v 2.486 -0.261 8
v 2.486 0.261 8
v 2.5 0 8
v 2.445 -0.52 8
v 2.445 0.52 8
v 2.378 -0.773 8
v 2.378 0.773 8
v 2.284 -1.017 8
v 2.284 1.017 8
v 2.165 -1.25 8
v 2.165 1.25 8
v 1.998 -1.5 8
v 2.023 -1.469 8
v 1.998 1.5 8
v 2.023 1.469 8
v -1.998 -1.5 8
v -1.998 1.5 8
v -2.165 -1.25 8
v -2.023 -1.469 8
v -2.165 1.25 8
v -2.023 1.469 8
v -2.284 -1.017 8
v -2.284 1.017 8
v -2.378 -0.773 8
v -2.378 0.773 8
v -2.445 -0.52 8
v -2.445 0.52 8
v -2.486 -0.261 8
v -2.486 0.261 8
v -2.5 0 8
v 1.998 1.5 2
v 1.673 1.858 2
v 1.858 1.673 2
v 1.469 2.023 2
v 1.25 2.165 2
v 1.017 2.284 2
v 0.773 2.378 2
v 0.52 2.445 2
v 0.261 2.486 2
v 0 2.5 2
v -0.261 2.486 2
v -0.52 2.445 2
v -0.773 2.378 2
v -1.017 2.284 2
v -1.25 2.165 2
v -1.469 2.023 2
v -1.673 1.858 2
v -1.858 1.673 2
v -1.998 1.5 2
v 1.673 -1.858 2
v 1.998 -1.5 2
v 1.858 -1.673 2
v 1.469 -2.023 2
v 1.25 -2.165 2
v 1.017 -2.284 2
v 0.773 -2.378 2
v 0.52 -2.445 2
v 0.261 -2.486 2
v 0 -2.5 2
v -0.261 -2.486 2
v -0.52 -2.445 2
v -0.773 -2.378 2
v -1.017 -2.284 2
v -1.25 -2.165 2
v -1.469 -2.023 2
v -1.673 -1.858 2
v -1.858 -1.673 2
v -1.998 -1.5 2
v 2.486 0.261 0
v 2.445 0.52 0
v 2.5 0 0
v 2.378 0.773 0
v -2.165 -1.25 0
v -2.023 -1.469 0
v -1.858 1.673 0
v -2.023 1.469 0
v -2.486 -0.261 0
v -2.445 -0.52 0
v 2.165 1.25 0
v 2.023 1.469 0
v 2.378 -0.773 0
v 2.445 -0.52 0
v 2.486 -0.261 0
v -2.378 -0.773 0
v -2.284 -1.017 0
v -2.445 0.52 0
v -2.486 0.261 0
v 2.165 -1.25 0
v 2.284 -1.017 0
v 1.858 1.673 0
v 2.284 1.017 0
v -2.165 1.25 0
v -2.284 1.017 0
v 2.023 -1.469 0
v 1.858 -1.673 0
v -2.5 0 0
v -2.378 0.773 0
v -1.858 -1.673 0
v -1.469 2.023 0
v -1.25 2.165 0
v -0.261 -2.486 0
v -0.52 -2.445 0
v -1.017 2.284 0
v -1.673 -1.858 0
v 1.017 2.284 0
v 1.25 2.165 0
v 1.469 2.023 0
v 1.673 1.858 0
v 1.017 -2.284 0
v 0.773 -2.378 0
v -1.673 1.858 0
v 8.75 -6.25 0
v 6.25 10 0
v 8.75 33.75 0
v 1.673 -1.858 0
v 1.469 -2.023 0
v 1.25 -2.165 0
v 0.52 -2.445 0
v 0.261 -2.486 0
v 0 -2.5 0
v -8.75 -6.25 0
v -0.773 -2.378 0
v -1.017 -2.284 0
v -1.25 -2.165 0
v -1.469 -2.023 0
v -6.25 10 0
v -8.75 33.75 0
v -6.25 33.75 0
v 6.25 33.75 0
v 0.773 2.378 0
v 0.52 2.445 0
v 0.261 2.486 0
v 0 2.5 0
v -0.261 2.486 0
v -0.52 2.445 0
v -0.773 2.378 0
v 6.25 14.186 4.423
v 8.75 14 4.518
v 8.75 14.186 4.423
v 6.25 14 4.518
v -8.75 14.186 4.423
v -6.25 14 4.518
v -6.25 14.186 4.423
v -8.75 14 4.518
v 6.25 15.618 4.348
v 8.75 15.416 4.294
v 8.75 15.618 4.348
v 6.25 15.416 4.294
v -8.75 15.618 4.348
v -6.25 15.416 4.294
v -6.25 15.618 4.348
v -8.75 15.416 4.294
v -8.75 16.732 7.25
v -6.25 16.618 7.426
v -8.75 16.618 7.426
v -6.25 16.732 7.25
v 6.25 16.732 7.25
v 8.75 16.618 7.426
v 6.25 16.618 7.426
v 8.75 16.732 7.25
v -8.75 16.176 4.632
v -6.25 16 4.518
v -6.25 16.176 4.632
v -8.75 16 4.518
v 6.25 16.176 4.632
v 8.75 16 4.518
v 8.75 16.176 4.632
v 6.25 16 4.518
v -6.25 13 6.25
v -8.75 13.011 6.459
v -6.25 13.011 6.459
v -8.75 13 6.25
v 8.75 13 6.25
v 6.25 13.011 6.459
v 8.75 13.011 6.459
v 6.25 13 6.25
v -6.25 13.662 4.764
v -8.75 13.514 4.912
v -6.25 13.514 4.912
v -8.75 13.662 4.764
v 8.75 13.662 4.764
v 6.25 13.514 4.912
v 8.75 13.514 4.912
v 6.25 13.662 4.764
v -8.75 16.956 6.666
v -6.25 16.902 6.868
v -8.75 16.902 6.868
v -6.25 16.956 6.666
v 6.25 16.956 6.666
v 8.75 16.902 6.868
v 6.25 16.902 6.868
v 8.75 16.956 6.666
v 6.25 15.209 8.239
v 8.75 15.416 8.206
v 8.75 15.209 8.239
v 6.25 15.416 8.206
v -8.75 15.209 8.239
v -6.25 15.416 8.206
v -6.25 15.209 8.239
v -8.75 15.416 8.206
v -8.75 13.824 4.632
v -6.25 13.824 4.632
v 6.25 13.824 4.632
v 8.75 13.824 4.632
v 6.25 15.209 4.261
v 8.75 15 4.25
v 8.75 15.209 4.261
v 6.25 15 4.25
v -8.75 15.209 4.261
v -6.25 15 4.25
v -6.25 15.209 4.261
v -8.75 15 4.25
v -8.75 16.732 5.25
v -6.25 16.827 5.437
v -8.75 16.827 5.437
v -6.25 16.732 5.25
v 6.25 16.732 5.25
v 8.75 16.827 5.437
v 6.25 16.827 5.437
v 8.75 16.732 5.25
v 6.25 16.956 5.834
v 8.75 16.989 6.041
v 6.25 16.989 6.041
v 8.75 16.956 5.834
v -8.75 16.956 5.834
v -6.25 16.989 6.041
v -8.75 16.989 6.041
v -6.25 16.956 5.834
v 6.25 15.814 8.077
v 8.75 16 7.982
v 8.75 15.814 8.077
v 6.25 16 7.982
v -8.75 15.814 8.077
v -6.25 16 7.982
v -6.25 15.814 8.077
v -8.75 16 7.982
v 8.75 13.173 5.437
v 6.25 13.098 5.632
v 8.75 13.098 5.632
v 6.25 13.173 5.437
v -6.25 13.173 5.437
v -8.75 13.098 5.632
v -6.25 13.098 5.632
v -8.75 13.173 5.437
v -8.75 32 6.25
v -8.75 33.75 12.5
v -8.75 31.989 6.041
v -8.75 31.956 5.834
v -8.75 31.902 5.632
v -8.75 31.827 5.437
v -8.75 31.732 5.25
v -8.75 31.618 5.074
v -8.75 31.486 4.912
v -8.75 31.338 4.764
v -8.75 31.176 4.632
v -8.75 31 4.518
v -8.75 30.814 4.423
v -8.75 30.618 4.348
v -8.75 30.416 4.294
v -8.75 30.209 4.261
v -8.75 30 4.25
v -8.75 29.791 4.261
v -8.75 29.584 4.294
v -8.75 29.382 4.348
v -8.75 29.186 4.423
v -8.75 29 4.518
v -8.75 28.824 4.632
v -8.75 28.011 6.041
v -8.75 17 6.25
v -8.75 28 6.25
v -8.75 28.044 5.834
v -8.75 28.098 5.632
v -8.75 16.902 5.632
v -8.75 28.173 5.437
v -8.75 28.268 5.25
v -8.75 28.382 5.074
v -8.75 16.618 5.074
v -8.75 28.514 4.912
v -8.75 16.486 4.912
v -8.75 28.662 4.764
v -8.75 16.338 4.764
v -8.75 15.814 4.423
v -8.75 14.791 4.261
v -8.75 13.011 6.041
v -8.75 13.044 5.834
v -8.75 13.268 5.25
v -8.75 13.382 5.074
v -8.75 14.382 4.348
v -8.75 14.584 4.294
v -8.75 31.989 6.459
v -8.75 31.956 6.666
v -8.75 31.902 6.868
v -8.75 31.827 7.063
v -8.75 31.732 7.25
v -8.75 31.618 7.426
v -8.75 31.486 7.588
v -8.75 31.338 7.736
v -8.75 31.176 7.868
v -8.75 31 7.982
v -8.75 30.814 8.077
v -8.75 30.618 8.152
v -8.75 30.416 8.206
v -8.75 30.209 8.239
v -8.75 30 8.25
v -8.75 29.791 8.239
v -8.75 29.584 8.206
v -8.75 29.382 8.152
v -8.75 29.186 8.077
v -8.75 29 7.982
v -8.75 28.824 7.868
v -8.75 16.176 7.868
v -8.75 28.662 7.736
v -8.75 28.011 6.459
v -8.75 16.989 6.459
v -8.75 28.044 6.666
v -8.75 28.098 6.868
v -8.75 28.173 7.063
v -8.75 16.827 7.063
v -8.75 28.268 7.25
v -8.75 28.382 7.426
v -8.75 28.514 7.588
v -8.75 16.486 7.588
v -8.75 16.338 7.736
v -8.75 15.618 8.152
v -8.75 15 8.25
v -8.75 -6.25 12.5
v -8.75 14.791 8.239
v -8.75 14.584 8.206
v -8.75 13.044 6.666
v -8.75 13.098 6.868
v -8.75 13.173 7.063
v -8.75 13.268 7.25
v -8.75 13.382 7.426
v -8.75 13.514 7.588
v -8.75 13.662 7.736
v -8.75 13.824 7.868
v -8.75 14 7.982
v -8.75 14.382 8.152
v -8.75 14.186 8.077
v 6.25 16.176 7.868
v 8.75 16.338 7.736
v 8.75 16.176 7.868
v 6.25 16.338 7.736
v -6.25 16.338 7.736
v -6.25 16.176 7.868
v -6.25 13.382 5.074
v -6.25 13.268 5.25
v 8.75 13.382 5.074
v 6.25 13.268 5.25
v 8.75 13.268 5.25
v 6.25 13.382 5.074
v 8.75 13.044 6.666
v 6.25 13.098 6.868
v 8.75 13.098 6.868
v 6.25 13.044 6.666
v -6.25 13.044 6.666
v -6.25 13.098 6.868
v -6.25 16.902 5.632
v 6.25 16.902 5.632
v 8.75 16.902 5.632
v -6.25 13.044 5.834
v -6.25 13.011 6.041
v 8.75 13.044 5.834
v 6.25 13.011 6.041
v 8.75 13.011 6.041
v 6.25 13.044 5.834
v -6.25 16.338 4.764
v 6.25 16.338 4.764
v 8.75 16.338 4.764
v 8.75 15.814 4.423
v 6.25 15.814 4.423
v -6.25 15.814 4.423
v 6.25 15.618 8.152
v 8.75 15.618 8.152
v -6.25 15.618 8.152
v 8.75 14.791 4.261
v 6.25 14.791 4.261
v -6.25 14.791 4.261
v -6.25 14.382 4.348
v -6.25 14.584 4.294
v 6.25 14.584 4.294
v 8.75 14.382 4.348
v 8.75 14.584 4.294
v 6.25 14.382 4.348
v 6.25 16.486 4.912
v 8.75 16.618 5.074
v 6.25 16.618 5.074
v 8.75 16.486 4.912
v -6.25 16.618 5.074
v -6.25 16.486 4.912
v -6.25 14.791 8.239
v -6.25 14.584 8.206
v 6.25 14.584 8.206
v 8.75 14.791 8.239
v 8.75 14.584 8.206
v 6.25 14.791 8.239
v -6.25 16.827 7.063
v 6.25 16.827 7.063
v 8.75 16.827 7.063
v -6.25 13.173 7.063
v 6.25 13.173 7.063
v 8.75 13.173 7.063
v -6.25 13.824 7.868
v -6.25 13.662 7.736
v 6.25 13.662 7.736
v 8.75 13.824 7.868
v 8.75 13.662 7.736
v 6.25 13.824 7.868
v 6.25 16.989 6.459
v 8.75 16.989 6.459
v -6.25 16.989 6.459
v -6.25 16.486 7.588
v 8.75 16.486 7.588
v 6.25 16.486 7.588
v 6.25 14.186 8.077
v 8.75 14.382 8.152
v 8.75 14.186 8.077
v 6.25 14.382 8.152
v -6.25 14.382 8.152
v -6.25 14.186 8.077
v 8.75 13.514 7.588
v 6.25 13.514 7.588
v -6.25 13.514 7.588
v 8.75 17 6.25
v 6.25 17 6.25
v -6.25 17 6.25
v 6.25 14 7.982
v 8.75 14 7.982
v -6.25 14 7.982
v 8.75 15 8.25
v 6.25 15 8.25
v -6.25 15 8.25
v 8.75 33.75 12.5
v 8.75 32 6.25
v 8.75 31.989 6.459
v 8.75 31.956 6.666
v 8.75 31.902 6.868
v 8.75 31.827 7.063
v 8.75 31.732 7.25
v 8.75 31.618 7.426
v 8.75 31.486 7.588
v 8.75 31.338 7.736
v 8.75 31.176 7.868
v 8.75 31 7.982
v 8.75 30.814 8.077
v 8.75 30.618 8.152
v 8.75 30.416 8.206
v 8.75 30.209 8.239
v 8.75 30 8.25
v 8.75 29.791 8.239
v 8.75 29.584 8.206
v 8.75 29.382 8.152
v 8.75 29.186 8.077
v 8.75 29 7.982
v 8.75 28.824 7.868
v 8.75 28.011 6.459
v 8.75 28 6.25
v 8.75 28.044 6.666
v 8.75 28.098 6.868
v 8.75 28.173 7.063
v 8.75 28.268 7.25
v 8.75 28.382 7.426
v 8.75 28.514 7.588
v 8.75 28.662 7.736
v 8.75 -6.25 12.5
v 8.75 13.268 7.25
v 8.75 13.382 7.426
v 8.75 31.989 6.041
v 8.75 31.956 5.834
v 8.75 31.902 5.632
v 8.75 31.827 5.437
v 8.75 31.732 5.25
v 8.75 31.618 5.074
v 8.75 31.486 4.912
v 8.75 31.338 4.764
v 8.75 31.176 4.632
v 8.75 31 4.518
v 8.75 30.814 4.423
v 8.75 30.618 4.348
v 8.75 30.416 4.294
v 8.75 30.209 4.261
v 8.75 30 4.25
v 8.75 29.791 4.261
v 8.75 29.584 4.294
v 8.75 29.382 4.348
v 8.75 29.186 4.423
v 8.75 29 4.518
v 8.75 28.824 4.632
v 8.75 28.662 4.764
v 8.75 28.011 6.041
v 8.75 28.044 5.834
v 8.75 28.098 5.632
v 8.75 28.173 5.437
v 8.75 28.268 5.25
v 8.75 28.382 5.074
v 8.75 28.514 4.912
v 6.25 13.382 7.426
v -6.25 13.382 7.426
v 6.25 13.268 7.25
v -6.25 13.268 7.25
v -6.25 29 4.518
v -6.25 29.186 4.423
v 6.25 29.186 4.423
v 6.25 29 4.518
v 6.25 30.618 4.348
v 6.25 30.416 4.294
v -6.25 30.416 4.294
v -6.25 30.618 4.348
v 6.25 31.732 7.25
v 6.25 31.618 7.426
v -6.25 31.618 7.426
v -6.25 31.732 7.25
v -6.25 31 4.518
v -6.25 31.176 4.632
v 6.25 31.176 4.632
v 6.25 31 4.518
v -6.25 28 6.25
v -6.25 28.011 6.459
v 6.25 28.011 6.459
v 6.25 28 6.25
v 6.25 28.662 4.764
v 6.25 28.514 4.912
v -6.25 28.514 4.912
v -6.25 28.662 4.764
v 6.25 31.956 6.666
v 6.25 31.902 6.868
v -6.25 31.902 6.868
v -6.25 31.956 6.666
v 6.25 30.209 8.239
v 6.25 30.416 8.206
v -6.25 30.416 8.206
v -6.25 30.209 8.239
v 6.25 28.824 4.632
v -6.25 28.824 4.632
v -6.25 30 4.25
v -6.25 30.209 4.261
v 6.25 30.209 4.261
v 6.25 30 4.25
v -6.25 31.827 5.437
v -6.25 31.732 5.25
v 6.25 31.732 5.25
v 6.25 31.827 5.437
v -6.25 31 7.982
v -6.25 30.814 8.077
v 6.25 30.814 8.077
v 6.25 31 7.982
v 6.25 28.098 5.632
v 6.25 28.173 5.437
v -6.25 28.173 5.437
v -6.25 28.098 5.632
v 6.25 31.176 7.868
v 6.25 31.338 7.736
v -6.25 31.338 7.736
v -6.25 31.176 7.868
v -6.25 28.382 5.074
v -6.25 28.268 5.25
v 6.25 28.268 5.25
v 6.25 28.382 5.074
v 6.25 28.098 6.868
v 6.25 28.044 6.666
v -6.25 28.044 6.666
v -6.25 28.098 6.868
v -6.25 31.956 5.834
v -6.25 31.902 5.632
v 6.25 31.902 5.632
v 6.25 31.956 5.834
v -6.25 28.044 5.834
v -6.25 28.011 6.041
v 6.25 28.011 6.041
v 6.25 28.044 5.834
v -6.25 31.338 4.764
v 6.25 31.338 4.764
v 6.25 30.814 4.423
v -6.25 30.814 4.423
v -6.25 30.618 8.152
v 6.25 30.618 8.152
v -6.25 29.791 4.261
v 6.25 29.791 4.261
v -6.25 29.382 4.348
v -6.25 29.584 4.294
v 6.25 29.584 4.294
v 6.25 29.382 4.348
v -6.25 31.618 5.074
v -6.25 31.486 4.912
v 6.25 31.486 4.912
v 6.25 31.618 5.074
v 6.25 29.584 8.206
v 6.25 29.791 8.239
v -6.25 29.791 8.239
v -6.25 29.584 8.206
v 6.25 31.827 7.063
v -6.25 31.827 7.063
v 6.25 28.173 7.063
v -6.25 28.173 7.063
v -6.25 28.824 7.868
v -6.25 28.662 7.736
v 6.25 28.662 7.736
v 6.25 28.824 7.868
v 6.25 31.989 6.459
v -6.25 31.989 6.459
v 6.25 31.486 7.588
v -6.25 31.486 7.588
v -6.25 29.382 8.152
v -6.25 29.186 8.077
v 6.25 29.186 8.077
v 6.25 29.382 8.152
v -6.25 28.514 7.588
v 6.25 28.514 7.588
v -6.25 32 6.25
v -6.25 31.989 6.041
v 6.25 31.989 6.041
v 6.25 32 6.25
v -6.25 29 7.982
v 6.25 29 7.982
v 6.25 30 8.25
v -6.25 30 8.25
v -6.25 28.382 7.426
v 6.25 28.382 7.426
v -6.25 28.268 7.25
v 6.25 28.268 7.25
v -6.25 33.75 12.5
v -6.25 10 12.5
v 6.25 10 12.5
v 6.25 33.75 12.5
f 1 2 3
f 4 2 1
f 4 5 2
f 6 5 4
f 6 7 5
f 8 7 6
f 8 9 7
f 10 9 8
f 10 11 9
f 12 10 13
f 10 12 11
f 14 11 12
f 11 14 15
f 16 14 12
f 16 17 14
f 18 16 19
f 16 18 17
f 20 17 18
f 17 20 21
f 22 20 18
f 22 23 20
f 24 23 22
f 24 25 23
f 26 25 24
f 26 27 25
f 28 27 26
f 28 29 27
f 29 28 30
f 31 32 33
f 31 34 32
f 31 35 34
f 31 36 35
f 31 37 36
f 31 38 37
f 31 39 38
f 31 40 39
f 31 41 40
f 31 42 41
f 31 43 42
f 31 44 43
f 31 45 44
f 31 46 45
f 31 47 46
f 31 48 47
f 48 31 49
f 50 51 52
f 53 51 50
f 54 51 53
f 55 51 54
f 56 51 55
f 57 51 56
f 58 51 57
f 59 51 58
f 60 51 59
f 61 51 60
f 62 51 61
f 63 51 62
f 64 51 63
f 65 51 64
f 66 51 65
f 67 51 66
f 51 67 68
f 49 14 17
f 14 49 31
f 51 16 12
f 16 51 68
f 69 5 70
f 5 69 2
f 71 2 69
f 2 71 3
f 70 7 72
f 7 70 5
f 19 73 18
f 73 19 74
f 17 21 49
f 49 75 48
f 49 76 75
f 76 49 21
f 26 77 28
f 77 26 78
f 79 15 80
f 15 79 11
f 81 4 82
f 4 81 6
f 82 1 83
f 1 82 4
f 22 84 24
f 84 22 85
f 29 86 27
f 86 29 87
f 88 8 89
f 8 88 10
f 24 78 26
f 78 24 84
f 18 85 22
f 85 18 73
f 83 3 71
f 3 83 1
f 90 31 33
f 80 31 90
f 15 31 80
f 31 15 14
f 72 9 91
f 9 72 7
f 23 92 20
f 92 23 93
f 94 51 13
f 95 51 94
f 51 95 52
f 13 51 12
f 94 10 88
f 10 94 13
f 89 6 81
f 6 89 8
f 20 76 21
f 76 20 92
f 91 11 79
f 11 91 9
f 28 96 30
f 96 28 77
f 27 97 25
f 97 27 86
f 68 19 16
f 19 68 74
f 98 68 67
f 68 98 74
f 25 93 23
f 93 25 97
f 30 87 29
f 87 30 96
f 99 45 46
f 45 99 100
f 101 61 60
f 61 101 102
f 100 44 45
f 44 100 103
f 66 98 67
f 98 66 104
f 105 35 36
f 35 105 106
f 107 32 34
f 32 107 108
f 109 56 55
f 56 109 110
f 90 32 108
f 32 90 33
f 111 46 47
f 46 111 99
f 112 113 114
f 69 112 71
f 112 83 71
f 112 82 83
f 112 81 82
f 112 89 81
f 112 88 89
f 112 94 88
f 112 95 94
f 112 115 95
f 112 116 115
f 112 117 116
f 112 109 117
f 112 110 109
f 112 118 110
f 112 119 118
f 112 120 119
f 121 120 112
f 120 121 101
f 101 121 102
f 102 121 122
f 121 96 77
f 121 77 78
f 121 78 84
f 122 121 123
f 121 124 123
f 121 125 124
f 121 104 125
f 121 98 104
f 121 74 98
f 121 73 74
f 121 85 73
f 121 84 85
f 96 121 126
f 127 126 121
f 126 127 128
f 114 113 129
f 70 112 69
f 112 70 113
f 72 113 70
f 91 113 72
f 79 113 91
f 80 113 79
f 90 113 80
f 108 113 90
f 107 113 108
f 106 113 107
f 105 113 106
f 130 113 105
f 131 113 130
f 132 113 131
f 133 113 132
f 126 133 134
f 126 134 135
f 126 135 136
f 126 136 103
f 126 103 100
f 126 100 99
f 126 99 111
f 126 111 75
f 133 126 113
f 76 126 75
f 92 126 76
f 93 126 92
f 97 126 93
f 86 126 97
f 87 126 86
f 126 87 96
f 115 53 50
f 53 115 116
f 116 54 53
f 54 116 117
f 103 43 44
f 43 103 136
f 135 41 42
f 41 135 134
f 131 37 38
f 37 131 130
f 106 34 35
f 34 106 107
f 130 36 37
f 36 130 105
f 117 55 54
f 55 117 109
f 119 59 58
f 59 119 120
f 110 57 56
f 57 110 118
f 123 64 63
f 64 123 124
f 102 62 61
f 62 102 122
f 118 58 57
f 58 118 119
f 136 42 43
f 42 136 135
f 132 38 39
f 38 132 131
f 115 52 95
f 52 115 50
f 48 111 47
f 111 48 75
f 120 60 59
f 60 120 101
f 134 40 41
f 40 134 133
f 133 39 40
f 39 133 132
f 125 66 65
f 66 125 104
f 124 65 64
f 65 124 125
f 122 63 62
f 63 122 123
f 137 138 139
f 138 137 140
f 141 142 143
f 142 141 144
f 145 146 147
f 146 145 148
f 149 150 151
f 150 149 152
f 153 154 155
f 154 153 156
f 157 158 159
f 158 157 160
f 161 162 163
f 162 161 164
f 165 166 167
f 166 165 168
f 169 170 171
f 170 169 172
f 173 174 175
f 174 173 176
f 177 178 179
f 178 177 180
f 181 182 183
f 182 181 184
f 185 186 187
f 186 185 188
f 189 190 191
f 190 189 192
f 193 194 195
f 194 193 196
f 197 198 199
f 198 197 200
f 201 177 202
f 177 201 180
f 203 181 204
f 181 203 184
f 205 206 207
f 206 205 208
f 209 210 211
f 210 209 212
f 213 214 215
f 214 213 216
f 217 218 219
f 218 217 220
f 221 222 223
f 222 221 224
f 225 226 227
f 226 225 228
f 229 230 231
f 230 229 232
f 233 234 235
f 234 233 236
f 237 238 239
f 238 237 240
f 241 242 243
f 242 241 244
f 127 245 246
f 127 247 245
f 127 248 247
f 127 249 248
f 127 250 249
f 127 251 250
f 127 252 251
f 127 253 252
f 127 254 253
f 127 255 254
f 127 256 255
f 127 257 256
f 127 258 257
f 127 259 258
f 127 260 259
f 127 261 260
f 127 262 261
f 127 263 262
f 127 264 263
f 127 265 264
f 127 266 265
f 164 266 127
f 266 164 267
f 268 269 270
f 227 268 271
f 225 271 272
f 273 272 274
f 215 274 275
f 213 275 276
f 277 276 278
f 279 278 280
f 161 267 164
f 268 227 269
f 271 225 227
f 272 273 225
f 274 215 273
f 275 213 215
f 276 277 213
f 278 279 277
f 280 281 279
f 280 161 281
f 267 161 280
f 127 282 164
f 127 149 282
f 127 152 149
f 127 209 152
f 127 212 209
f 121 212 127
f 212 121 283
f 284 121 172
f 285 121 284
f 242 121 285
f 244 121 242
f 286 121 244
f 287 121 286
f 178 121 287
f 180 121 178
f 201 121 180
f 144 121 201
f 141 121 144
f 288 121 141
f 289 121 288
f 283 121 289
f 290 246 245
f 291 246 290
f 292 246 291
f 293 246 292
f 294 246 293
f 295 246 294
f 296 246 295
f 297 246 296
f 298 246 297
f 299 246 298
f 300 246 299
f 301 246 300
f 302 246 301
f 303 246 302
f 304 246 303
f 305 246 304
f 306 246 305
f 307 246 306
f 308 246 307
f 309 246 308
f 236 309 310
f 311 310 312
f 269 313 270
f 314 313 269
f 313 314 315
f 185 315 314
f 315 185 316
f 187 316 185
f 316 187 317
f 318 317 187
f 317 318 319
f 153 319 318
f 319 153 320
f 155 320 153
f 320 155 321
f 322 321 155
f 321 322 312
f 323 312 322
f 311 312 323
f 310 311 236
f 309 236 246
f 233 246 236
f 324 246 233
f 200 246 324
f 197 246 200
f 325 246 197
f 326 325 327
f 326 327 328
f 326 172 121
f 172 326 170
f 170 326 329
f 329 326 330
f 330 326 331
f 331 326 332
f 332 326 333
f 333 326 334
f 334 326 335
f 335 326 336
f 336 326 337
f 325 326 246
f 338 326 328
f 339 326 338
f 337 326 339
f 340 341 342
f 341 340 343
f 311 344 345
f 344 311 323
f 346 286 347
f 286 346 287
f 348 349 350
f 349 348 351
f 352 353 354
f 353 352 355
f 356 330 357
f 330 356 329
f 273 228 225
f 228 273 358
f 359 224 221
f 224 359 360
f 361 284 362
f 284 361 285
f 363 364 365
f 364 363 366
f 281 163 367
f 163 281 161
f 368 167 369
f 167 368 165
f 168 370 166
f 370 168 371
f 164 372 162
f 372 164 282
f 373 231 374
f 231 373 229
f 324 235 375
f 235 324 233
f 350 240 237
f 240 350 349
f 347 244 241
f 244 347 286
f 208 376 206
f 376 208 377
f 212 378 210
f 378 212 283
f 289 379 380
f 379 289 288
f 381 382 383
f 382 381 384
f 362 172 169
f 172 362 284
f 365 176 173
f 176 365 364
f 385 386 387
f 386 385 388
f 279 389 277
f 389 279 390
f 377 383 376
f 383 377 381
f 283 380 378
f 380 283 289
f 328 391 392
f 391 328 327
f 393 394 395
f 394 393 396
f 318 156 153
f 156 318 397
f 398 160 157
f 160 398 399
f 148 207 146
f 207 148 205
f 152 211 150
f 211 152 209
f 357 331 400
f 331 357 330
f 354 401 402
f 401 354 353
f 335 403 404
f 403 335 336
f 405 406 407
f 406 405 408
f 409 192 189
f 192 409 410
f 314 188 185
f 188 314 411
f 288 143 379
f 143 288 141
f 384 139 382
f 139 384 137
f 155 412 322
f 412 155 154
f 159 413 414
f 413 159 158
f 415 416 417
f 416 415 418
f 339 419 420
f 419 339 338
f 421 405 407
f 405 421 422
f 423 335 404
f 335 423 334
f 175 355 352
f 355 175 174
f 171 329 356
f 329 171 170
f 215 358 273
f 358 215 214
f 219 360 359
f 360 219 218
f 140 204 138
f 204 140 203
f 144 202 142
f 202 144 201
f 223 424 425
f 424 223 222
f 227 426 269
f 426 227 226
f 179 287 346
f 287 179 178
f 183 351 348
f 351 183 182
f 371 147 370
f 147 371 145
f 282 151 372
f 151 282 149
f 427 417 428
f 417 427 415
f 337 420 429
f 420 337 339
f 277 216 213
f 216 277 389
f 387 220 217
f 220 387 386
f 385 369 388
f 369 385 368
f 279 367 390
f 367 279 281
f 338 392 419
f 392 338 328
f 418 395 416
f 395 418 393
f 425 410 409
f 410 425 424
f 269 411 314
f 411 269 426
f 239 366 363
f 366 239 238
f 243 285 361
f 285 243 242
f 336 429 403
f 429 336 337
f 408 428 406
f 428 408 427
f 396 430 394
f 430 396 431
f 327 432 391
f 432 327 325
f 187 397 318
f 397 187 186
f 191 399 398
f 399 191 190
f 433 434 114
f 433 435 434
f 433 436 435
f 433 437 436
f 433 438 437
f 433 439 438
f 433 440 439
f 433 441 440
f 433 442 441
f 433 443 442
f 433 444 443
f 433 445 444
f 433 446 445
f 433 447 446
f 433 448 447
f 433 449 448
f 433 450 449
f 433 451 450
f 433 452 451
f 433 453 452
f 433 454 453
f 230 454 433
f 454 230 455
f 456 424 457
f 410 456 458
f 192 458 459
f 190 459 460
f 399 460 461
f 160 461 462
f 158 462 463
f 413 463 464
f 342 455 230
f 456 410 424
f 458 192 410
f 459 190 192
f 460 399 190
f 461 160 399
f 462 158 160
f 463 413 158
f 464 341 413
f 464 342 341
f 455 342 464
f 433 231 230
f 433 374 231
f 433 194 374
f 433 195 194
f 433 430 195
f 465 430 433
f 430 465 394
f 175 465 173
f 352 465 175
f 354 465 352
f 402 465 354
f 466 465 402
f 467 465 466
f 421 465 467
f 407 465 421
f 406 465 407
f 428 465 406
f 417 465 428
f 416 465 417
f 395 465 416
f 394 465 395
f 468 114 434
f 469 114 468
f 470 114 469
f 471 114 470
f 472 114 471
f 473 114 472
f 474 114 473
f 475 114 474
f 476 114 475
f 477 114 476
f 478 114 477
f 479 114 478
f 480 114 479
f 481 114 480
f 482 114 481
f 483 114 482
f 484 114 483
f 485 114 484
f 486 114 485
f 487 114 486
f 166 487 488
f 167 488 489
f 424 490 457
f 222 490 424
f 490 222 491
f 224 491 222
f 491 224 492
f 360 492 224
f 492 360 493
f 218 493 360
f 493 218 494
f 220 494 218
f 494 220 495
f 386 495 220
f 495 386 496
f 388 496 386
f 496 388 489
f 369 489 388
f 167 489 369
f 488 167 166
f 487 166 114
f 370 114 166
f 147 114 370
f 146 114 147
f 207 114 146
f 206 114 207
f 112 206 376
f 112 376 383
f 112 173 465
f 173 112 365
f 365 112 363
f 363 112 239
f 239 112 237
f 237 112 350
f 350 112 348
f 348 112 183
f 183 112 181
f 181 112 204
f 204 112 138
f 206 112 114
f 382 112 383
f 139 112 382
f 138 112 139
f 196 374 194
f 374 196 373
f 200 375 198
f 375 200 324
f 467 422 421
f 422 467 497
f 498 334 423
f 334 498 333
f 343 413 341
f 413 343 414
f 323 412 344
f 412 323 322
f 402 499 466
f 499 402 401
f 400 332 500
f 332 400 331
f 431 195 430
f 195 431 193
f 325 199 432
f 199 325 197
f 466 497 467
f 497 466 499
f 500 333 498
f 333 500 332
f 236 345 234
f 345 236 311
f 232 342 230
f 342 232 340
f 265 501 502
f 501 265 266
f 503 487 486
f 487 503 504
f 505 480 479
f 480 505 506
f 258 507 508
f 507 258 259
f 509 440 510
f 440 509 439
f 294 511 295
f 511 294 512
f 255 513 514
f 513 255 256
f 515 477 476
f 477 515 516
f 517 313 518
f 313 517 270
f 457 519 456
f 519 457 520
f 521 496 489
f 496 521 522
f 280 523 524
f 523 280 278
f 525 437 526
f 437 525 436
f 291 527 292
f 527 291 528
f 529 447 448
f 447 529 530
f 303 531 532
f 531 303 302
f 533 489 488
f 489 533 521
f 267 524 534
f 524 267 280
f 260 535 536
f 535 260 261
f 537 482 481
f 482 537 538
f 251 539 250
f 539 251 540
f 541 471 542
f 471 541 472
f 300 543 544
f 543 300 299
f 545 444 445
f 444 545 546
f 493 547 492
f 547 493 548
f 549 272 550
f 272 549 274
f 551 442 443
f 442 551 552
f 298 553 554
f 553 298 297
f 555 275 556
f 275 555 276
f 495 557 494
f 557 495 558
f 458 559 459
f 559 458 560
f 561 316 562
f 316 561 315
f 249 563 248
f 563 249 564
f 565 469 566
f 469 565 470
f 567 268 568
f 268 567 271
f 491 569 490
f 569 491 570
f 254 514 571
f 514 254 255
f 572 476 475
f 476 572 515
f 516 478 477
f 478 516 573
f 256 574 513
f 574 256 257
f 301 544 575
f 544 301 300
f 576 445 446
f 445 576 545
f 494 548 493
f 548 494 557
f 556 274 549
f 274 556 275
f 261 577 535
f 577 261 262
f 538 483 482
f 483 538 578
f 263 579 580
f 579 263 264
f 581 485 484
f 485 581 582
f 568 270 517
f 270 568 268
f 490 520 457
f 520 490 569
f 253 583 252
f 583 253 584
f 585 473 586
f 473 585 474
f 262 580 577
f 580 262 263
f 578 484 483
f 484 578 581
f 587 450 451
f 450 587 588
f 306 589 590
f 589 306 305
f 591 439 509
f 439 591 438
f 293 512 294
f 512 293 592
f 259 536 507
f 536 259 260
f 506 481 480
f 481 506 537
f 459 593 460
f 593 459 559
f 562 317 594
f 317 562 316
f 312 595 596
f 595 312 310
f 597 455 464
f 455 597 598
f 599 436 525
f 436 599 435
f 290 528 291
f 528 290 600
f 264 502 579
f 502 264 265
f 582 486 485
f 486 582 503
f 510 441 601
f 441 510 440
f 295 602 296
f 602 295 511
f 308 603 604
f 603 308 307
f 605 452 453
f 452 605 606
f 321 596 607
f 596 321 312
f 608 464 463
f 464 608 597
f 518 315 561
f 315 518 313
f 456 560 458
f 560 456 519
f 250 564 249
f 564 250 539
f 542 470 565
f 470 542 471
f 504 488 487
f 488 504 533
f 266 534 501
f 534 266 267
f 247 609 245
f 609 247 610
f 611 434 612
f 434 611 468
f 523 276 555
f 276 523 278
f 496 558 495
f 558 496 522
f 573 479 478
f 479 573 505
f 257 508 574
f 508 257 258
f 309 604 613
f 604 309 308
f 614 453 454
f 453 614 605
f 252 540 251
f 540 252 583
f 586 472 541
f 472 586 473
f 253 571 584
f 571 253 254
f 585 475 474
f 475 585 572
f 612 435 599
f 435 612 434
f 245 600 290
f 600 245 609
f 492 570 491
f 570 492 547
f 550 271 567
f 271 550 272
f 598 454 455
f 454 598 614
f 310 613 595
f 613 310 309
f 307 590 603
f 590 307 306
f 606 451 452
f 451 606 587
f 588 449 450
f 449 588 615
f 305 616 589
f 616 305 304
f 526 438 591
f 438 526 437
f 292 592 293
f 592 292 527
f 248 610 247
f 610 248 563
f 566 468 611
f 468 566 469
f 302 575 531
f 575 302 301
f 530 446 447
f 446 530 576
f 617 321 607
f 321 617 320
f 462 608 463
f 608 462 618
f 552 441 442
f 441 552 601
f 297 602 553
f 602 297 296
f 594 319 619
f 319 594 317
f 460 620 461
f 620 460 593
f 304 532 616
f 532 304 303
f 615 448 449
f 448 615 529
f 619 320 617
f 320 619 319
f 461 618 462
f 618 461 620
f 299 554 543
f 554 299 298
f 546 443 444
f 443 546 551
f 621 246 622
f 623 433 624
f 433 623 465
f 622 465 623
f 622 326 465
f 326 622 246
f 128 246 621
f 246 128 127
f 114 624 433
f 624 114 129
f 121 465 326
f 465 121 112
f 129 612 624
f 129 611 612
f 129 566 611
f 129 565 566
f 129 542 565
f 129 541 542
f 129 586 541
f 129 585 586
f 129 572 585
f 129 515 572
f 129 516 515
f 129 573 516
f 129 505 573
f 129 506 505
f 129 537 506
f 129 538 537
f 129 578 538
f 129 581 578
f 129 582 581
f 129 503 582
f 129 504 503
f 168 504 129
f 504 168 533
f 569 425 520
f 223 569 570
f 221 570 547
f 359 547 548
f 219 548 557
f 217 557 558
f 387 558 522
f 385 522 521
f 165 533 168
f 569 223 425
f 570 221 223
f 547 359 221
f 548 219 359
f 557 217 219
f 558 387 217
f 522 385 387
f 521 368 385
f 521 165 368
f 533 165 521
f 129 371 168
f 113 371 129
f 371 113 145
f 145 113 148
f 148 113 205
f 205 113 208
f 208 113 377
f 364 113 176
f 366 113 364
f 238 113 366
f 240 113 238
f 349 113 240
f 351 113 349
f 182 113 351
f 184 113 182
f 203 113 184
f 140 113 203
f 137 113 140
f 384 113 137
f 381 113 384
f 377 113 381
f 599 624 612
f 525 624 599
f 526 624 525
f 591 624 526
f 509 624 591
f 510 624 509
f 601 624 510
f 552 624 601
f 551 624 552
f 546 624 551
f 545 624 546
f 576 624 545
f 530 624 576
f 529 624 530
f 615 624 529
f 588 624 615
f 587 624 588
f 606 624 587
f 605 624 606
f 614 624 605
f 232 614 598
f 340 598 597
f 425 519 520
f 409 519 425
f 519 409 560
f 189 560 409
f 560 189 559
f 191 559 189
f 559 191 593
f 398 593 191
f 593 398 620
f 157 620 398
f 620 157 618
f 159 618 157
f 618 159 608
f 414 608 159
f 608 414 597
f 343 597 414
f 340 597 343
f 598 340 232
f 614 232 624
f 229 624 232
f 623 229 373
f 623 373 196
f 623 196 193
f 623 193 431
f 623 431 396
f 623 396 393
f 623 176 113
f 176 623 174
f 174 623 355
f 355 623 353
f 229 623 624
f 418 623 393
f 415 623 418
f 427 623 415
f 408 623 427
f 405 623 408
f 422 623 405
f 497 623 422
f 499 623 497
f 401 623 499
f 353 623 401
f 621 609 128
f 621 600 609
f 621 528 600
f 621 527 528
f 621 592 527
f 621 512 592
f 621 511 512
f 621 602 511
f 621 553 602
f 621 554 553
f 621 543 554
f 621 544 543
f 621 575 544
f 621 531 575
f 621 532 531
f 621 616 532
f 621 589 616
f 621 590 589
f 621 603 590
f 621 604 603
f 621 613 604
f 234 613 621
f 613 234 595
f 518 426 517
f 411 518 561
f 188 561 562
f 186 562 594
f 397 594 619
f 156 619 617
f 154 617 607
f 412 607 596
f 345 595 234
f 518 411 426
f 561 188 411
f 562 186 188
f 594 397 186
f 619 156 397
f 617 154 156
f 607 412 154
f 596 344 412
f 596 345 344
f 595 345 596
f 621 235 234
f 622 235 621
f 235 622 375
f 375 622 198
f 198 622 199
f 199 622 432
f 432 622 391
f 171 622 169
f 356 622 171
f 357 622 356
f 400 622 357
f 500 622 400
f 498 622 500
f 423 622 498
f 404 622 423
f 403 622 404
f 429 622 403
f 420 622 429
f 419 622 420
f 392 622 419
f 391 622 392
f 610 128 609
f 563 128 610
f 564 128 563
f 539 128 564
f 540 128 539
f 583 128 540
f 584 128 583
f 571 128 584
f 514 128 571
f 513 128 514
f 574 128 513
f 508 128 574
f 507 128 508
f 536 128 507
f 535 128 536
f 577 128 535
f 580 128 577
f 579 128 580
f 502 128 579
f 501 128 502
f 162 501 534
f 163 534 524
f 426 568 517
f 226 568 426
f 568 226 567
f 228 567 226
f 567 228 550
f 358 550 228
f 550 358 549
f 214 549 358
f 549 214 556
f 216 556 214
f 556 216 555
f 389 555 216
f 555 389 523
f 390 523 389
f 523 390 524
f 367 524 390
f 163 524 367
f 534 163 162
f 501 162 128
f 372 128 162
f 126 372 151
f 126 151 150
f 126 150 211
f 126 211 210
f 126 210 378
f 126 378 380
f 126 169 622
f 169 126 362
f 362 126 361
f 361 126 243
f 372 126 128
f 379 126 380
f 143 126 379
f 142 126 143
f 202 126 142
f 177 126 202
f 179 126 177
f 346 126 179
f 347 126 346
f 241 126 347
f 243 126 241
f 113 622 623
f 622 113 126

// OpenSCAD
motorShaftDim = [5,3,6];
motorShaftBase = [5,2];

loadCell = [12.5,80,12.5];

case = [loadCell.x+5,40,loadCell.z];

loadCellDistanceFromShaft = 10;
loadCellHoleGap = 15;
loadCellHoleSize = 4;
loadCellHolePos1 = [-case.x/2,5,loadCell.z/2];
loadCellHolePos2 = [-case.x/2,5+loadCellHoleGap,loadCell.z/2];


module motorShaft(){
    intersection(){
    translate([-motorShaftDim.x/2,-motorShaftDim.y/2,motorShaftBase.y]) cube(motorShaftDim);        
    translate([0,0,motorShaftBase.y]) cylinder(d=motorShaftBase.x,h=motorShaftDim.z,$fn=60);
    }
    cylinder(d=motorShaftBase.x,h=motorShaftBase.y,$fn=60);
}

module loadCellHoles(){
    translate(loadCellHolePos1) rotate([0,90,0]) cylinder(d=loadCellHoleSize,h=case.x,$fn=60);
    translate(loadCellHolePos2) rotate([0,90,0]) cylinder(d=loadCellHoleSize,h=case.x,$fn=60);
}

difference(){
    translate([-case.x/2,-case.z/2,0]) cube(case);
    motorShaft();
    
    translate([-loadCell.x/2,loadCellDistanceFromShaft,0]) cube(loadCell);
    translate([0,loadCellDistanceFromShaft,0]) loadCellHoles();
}
